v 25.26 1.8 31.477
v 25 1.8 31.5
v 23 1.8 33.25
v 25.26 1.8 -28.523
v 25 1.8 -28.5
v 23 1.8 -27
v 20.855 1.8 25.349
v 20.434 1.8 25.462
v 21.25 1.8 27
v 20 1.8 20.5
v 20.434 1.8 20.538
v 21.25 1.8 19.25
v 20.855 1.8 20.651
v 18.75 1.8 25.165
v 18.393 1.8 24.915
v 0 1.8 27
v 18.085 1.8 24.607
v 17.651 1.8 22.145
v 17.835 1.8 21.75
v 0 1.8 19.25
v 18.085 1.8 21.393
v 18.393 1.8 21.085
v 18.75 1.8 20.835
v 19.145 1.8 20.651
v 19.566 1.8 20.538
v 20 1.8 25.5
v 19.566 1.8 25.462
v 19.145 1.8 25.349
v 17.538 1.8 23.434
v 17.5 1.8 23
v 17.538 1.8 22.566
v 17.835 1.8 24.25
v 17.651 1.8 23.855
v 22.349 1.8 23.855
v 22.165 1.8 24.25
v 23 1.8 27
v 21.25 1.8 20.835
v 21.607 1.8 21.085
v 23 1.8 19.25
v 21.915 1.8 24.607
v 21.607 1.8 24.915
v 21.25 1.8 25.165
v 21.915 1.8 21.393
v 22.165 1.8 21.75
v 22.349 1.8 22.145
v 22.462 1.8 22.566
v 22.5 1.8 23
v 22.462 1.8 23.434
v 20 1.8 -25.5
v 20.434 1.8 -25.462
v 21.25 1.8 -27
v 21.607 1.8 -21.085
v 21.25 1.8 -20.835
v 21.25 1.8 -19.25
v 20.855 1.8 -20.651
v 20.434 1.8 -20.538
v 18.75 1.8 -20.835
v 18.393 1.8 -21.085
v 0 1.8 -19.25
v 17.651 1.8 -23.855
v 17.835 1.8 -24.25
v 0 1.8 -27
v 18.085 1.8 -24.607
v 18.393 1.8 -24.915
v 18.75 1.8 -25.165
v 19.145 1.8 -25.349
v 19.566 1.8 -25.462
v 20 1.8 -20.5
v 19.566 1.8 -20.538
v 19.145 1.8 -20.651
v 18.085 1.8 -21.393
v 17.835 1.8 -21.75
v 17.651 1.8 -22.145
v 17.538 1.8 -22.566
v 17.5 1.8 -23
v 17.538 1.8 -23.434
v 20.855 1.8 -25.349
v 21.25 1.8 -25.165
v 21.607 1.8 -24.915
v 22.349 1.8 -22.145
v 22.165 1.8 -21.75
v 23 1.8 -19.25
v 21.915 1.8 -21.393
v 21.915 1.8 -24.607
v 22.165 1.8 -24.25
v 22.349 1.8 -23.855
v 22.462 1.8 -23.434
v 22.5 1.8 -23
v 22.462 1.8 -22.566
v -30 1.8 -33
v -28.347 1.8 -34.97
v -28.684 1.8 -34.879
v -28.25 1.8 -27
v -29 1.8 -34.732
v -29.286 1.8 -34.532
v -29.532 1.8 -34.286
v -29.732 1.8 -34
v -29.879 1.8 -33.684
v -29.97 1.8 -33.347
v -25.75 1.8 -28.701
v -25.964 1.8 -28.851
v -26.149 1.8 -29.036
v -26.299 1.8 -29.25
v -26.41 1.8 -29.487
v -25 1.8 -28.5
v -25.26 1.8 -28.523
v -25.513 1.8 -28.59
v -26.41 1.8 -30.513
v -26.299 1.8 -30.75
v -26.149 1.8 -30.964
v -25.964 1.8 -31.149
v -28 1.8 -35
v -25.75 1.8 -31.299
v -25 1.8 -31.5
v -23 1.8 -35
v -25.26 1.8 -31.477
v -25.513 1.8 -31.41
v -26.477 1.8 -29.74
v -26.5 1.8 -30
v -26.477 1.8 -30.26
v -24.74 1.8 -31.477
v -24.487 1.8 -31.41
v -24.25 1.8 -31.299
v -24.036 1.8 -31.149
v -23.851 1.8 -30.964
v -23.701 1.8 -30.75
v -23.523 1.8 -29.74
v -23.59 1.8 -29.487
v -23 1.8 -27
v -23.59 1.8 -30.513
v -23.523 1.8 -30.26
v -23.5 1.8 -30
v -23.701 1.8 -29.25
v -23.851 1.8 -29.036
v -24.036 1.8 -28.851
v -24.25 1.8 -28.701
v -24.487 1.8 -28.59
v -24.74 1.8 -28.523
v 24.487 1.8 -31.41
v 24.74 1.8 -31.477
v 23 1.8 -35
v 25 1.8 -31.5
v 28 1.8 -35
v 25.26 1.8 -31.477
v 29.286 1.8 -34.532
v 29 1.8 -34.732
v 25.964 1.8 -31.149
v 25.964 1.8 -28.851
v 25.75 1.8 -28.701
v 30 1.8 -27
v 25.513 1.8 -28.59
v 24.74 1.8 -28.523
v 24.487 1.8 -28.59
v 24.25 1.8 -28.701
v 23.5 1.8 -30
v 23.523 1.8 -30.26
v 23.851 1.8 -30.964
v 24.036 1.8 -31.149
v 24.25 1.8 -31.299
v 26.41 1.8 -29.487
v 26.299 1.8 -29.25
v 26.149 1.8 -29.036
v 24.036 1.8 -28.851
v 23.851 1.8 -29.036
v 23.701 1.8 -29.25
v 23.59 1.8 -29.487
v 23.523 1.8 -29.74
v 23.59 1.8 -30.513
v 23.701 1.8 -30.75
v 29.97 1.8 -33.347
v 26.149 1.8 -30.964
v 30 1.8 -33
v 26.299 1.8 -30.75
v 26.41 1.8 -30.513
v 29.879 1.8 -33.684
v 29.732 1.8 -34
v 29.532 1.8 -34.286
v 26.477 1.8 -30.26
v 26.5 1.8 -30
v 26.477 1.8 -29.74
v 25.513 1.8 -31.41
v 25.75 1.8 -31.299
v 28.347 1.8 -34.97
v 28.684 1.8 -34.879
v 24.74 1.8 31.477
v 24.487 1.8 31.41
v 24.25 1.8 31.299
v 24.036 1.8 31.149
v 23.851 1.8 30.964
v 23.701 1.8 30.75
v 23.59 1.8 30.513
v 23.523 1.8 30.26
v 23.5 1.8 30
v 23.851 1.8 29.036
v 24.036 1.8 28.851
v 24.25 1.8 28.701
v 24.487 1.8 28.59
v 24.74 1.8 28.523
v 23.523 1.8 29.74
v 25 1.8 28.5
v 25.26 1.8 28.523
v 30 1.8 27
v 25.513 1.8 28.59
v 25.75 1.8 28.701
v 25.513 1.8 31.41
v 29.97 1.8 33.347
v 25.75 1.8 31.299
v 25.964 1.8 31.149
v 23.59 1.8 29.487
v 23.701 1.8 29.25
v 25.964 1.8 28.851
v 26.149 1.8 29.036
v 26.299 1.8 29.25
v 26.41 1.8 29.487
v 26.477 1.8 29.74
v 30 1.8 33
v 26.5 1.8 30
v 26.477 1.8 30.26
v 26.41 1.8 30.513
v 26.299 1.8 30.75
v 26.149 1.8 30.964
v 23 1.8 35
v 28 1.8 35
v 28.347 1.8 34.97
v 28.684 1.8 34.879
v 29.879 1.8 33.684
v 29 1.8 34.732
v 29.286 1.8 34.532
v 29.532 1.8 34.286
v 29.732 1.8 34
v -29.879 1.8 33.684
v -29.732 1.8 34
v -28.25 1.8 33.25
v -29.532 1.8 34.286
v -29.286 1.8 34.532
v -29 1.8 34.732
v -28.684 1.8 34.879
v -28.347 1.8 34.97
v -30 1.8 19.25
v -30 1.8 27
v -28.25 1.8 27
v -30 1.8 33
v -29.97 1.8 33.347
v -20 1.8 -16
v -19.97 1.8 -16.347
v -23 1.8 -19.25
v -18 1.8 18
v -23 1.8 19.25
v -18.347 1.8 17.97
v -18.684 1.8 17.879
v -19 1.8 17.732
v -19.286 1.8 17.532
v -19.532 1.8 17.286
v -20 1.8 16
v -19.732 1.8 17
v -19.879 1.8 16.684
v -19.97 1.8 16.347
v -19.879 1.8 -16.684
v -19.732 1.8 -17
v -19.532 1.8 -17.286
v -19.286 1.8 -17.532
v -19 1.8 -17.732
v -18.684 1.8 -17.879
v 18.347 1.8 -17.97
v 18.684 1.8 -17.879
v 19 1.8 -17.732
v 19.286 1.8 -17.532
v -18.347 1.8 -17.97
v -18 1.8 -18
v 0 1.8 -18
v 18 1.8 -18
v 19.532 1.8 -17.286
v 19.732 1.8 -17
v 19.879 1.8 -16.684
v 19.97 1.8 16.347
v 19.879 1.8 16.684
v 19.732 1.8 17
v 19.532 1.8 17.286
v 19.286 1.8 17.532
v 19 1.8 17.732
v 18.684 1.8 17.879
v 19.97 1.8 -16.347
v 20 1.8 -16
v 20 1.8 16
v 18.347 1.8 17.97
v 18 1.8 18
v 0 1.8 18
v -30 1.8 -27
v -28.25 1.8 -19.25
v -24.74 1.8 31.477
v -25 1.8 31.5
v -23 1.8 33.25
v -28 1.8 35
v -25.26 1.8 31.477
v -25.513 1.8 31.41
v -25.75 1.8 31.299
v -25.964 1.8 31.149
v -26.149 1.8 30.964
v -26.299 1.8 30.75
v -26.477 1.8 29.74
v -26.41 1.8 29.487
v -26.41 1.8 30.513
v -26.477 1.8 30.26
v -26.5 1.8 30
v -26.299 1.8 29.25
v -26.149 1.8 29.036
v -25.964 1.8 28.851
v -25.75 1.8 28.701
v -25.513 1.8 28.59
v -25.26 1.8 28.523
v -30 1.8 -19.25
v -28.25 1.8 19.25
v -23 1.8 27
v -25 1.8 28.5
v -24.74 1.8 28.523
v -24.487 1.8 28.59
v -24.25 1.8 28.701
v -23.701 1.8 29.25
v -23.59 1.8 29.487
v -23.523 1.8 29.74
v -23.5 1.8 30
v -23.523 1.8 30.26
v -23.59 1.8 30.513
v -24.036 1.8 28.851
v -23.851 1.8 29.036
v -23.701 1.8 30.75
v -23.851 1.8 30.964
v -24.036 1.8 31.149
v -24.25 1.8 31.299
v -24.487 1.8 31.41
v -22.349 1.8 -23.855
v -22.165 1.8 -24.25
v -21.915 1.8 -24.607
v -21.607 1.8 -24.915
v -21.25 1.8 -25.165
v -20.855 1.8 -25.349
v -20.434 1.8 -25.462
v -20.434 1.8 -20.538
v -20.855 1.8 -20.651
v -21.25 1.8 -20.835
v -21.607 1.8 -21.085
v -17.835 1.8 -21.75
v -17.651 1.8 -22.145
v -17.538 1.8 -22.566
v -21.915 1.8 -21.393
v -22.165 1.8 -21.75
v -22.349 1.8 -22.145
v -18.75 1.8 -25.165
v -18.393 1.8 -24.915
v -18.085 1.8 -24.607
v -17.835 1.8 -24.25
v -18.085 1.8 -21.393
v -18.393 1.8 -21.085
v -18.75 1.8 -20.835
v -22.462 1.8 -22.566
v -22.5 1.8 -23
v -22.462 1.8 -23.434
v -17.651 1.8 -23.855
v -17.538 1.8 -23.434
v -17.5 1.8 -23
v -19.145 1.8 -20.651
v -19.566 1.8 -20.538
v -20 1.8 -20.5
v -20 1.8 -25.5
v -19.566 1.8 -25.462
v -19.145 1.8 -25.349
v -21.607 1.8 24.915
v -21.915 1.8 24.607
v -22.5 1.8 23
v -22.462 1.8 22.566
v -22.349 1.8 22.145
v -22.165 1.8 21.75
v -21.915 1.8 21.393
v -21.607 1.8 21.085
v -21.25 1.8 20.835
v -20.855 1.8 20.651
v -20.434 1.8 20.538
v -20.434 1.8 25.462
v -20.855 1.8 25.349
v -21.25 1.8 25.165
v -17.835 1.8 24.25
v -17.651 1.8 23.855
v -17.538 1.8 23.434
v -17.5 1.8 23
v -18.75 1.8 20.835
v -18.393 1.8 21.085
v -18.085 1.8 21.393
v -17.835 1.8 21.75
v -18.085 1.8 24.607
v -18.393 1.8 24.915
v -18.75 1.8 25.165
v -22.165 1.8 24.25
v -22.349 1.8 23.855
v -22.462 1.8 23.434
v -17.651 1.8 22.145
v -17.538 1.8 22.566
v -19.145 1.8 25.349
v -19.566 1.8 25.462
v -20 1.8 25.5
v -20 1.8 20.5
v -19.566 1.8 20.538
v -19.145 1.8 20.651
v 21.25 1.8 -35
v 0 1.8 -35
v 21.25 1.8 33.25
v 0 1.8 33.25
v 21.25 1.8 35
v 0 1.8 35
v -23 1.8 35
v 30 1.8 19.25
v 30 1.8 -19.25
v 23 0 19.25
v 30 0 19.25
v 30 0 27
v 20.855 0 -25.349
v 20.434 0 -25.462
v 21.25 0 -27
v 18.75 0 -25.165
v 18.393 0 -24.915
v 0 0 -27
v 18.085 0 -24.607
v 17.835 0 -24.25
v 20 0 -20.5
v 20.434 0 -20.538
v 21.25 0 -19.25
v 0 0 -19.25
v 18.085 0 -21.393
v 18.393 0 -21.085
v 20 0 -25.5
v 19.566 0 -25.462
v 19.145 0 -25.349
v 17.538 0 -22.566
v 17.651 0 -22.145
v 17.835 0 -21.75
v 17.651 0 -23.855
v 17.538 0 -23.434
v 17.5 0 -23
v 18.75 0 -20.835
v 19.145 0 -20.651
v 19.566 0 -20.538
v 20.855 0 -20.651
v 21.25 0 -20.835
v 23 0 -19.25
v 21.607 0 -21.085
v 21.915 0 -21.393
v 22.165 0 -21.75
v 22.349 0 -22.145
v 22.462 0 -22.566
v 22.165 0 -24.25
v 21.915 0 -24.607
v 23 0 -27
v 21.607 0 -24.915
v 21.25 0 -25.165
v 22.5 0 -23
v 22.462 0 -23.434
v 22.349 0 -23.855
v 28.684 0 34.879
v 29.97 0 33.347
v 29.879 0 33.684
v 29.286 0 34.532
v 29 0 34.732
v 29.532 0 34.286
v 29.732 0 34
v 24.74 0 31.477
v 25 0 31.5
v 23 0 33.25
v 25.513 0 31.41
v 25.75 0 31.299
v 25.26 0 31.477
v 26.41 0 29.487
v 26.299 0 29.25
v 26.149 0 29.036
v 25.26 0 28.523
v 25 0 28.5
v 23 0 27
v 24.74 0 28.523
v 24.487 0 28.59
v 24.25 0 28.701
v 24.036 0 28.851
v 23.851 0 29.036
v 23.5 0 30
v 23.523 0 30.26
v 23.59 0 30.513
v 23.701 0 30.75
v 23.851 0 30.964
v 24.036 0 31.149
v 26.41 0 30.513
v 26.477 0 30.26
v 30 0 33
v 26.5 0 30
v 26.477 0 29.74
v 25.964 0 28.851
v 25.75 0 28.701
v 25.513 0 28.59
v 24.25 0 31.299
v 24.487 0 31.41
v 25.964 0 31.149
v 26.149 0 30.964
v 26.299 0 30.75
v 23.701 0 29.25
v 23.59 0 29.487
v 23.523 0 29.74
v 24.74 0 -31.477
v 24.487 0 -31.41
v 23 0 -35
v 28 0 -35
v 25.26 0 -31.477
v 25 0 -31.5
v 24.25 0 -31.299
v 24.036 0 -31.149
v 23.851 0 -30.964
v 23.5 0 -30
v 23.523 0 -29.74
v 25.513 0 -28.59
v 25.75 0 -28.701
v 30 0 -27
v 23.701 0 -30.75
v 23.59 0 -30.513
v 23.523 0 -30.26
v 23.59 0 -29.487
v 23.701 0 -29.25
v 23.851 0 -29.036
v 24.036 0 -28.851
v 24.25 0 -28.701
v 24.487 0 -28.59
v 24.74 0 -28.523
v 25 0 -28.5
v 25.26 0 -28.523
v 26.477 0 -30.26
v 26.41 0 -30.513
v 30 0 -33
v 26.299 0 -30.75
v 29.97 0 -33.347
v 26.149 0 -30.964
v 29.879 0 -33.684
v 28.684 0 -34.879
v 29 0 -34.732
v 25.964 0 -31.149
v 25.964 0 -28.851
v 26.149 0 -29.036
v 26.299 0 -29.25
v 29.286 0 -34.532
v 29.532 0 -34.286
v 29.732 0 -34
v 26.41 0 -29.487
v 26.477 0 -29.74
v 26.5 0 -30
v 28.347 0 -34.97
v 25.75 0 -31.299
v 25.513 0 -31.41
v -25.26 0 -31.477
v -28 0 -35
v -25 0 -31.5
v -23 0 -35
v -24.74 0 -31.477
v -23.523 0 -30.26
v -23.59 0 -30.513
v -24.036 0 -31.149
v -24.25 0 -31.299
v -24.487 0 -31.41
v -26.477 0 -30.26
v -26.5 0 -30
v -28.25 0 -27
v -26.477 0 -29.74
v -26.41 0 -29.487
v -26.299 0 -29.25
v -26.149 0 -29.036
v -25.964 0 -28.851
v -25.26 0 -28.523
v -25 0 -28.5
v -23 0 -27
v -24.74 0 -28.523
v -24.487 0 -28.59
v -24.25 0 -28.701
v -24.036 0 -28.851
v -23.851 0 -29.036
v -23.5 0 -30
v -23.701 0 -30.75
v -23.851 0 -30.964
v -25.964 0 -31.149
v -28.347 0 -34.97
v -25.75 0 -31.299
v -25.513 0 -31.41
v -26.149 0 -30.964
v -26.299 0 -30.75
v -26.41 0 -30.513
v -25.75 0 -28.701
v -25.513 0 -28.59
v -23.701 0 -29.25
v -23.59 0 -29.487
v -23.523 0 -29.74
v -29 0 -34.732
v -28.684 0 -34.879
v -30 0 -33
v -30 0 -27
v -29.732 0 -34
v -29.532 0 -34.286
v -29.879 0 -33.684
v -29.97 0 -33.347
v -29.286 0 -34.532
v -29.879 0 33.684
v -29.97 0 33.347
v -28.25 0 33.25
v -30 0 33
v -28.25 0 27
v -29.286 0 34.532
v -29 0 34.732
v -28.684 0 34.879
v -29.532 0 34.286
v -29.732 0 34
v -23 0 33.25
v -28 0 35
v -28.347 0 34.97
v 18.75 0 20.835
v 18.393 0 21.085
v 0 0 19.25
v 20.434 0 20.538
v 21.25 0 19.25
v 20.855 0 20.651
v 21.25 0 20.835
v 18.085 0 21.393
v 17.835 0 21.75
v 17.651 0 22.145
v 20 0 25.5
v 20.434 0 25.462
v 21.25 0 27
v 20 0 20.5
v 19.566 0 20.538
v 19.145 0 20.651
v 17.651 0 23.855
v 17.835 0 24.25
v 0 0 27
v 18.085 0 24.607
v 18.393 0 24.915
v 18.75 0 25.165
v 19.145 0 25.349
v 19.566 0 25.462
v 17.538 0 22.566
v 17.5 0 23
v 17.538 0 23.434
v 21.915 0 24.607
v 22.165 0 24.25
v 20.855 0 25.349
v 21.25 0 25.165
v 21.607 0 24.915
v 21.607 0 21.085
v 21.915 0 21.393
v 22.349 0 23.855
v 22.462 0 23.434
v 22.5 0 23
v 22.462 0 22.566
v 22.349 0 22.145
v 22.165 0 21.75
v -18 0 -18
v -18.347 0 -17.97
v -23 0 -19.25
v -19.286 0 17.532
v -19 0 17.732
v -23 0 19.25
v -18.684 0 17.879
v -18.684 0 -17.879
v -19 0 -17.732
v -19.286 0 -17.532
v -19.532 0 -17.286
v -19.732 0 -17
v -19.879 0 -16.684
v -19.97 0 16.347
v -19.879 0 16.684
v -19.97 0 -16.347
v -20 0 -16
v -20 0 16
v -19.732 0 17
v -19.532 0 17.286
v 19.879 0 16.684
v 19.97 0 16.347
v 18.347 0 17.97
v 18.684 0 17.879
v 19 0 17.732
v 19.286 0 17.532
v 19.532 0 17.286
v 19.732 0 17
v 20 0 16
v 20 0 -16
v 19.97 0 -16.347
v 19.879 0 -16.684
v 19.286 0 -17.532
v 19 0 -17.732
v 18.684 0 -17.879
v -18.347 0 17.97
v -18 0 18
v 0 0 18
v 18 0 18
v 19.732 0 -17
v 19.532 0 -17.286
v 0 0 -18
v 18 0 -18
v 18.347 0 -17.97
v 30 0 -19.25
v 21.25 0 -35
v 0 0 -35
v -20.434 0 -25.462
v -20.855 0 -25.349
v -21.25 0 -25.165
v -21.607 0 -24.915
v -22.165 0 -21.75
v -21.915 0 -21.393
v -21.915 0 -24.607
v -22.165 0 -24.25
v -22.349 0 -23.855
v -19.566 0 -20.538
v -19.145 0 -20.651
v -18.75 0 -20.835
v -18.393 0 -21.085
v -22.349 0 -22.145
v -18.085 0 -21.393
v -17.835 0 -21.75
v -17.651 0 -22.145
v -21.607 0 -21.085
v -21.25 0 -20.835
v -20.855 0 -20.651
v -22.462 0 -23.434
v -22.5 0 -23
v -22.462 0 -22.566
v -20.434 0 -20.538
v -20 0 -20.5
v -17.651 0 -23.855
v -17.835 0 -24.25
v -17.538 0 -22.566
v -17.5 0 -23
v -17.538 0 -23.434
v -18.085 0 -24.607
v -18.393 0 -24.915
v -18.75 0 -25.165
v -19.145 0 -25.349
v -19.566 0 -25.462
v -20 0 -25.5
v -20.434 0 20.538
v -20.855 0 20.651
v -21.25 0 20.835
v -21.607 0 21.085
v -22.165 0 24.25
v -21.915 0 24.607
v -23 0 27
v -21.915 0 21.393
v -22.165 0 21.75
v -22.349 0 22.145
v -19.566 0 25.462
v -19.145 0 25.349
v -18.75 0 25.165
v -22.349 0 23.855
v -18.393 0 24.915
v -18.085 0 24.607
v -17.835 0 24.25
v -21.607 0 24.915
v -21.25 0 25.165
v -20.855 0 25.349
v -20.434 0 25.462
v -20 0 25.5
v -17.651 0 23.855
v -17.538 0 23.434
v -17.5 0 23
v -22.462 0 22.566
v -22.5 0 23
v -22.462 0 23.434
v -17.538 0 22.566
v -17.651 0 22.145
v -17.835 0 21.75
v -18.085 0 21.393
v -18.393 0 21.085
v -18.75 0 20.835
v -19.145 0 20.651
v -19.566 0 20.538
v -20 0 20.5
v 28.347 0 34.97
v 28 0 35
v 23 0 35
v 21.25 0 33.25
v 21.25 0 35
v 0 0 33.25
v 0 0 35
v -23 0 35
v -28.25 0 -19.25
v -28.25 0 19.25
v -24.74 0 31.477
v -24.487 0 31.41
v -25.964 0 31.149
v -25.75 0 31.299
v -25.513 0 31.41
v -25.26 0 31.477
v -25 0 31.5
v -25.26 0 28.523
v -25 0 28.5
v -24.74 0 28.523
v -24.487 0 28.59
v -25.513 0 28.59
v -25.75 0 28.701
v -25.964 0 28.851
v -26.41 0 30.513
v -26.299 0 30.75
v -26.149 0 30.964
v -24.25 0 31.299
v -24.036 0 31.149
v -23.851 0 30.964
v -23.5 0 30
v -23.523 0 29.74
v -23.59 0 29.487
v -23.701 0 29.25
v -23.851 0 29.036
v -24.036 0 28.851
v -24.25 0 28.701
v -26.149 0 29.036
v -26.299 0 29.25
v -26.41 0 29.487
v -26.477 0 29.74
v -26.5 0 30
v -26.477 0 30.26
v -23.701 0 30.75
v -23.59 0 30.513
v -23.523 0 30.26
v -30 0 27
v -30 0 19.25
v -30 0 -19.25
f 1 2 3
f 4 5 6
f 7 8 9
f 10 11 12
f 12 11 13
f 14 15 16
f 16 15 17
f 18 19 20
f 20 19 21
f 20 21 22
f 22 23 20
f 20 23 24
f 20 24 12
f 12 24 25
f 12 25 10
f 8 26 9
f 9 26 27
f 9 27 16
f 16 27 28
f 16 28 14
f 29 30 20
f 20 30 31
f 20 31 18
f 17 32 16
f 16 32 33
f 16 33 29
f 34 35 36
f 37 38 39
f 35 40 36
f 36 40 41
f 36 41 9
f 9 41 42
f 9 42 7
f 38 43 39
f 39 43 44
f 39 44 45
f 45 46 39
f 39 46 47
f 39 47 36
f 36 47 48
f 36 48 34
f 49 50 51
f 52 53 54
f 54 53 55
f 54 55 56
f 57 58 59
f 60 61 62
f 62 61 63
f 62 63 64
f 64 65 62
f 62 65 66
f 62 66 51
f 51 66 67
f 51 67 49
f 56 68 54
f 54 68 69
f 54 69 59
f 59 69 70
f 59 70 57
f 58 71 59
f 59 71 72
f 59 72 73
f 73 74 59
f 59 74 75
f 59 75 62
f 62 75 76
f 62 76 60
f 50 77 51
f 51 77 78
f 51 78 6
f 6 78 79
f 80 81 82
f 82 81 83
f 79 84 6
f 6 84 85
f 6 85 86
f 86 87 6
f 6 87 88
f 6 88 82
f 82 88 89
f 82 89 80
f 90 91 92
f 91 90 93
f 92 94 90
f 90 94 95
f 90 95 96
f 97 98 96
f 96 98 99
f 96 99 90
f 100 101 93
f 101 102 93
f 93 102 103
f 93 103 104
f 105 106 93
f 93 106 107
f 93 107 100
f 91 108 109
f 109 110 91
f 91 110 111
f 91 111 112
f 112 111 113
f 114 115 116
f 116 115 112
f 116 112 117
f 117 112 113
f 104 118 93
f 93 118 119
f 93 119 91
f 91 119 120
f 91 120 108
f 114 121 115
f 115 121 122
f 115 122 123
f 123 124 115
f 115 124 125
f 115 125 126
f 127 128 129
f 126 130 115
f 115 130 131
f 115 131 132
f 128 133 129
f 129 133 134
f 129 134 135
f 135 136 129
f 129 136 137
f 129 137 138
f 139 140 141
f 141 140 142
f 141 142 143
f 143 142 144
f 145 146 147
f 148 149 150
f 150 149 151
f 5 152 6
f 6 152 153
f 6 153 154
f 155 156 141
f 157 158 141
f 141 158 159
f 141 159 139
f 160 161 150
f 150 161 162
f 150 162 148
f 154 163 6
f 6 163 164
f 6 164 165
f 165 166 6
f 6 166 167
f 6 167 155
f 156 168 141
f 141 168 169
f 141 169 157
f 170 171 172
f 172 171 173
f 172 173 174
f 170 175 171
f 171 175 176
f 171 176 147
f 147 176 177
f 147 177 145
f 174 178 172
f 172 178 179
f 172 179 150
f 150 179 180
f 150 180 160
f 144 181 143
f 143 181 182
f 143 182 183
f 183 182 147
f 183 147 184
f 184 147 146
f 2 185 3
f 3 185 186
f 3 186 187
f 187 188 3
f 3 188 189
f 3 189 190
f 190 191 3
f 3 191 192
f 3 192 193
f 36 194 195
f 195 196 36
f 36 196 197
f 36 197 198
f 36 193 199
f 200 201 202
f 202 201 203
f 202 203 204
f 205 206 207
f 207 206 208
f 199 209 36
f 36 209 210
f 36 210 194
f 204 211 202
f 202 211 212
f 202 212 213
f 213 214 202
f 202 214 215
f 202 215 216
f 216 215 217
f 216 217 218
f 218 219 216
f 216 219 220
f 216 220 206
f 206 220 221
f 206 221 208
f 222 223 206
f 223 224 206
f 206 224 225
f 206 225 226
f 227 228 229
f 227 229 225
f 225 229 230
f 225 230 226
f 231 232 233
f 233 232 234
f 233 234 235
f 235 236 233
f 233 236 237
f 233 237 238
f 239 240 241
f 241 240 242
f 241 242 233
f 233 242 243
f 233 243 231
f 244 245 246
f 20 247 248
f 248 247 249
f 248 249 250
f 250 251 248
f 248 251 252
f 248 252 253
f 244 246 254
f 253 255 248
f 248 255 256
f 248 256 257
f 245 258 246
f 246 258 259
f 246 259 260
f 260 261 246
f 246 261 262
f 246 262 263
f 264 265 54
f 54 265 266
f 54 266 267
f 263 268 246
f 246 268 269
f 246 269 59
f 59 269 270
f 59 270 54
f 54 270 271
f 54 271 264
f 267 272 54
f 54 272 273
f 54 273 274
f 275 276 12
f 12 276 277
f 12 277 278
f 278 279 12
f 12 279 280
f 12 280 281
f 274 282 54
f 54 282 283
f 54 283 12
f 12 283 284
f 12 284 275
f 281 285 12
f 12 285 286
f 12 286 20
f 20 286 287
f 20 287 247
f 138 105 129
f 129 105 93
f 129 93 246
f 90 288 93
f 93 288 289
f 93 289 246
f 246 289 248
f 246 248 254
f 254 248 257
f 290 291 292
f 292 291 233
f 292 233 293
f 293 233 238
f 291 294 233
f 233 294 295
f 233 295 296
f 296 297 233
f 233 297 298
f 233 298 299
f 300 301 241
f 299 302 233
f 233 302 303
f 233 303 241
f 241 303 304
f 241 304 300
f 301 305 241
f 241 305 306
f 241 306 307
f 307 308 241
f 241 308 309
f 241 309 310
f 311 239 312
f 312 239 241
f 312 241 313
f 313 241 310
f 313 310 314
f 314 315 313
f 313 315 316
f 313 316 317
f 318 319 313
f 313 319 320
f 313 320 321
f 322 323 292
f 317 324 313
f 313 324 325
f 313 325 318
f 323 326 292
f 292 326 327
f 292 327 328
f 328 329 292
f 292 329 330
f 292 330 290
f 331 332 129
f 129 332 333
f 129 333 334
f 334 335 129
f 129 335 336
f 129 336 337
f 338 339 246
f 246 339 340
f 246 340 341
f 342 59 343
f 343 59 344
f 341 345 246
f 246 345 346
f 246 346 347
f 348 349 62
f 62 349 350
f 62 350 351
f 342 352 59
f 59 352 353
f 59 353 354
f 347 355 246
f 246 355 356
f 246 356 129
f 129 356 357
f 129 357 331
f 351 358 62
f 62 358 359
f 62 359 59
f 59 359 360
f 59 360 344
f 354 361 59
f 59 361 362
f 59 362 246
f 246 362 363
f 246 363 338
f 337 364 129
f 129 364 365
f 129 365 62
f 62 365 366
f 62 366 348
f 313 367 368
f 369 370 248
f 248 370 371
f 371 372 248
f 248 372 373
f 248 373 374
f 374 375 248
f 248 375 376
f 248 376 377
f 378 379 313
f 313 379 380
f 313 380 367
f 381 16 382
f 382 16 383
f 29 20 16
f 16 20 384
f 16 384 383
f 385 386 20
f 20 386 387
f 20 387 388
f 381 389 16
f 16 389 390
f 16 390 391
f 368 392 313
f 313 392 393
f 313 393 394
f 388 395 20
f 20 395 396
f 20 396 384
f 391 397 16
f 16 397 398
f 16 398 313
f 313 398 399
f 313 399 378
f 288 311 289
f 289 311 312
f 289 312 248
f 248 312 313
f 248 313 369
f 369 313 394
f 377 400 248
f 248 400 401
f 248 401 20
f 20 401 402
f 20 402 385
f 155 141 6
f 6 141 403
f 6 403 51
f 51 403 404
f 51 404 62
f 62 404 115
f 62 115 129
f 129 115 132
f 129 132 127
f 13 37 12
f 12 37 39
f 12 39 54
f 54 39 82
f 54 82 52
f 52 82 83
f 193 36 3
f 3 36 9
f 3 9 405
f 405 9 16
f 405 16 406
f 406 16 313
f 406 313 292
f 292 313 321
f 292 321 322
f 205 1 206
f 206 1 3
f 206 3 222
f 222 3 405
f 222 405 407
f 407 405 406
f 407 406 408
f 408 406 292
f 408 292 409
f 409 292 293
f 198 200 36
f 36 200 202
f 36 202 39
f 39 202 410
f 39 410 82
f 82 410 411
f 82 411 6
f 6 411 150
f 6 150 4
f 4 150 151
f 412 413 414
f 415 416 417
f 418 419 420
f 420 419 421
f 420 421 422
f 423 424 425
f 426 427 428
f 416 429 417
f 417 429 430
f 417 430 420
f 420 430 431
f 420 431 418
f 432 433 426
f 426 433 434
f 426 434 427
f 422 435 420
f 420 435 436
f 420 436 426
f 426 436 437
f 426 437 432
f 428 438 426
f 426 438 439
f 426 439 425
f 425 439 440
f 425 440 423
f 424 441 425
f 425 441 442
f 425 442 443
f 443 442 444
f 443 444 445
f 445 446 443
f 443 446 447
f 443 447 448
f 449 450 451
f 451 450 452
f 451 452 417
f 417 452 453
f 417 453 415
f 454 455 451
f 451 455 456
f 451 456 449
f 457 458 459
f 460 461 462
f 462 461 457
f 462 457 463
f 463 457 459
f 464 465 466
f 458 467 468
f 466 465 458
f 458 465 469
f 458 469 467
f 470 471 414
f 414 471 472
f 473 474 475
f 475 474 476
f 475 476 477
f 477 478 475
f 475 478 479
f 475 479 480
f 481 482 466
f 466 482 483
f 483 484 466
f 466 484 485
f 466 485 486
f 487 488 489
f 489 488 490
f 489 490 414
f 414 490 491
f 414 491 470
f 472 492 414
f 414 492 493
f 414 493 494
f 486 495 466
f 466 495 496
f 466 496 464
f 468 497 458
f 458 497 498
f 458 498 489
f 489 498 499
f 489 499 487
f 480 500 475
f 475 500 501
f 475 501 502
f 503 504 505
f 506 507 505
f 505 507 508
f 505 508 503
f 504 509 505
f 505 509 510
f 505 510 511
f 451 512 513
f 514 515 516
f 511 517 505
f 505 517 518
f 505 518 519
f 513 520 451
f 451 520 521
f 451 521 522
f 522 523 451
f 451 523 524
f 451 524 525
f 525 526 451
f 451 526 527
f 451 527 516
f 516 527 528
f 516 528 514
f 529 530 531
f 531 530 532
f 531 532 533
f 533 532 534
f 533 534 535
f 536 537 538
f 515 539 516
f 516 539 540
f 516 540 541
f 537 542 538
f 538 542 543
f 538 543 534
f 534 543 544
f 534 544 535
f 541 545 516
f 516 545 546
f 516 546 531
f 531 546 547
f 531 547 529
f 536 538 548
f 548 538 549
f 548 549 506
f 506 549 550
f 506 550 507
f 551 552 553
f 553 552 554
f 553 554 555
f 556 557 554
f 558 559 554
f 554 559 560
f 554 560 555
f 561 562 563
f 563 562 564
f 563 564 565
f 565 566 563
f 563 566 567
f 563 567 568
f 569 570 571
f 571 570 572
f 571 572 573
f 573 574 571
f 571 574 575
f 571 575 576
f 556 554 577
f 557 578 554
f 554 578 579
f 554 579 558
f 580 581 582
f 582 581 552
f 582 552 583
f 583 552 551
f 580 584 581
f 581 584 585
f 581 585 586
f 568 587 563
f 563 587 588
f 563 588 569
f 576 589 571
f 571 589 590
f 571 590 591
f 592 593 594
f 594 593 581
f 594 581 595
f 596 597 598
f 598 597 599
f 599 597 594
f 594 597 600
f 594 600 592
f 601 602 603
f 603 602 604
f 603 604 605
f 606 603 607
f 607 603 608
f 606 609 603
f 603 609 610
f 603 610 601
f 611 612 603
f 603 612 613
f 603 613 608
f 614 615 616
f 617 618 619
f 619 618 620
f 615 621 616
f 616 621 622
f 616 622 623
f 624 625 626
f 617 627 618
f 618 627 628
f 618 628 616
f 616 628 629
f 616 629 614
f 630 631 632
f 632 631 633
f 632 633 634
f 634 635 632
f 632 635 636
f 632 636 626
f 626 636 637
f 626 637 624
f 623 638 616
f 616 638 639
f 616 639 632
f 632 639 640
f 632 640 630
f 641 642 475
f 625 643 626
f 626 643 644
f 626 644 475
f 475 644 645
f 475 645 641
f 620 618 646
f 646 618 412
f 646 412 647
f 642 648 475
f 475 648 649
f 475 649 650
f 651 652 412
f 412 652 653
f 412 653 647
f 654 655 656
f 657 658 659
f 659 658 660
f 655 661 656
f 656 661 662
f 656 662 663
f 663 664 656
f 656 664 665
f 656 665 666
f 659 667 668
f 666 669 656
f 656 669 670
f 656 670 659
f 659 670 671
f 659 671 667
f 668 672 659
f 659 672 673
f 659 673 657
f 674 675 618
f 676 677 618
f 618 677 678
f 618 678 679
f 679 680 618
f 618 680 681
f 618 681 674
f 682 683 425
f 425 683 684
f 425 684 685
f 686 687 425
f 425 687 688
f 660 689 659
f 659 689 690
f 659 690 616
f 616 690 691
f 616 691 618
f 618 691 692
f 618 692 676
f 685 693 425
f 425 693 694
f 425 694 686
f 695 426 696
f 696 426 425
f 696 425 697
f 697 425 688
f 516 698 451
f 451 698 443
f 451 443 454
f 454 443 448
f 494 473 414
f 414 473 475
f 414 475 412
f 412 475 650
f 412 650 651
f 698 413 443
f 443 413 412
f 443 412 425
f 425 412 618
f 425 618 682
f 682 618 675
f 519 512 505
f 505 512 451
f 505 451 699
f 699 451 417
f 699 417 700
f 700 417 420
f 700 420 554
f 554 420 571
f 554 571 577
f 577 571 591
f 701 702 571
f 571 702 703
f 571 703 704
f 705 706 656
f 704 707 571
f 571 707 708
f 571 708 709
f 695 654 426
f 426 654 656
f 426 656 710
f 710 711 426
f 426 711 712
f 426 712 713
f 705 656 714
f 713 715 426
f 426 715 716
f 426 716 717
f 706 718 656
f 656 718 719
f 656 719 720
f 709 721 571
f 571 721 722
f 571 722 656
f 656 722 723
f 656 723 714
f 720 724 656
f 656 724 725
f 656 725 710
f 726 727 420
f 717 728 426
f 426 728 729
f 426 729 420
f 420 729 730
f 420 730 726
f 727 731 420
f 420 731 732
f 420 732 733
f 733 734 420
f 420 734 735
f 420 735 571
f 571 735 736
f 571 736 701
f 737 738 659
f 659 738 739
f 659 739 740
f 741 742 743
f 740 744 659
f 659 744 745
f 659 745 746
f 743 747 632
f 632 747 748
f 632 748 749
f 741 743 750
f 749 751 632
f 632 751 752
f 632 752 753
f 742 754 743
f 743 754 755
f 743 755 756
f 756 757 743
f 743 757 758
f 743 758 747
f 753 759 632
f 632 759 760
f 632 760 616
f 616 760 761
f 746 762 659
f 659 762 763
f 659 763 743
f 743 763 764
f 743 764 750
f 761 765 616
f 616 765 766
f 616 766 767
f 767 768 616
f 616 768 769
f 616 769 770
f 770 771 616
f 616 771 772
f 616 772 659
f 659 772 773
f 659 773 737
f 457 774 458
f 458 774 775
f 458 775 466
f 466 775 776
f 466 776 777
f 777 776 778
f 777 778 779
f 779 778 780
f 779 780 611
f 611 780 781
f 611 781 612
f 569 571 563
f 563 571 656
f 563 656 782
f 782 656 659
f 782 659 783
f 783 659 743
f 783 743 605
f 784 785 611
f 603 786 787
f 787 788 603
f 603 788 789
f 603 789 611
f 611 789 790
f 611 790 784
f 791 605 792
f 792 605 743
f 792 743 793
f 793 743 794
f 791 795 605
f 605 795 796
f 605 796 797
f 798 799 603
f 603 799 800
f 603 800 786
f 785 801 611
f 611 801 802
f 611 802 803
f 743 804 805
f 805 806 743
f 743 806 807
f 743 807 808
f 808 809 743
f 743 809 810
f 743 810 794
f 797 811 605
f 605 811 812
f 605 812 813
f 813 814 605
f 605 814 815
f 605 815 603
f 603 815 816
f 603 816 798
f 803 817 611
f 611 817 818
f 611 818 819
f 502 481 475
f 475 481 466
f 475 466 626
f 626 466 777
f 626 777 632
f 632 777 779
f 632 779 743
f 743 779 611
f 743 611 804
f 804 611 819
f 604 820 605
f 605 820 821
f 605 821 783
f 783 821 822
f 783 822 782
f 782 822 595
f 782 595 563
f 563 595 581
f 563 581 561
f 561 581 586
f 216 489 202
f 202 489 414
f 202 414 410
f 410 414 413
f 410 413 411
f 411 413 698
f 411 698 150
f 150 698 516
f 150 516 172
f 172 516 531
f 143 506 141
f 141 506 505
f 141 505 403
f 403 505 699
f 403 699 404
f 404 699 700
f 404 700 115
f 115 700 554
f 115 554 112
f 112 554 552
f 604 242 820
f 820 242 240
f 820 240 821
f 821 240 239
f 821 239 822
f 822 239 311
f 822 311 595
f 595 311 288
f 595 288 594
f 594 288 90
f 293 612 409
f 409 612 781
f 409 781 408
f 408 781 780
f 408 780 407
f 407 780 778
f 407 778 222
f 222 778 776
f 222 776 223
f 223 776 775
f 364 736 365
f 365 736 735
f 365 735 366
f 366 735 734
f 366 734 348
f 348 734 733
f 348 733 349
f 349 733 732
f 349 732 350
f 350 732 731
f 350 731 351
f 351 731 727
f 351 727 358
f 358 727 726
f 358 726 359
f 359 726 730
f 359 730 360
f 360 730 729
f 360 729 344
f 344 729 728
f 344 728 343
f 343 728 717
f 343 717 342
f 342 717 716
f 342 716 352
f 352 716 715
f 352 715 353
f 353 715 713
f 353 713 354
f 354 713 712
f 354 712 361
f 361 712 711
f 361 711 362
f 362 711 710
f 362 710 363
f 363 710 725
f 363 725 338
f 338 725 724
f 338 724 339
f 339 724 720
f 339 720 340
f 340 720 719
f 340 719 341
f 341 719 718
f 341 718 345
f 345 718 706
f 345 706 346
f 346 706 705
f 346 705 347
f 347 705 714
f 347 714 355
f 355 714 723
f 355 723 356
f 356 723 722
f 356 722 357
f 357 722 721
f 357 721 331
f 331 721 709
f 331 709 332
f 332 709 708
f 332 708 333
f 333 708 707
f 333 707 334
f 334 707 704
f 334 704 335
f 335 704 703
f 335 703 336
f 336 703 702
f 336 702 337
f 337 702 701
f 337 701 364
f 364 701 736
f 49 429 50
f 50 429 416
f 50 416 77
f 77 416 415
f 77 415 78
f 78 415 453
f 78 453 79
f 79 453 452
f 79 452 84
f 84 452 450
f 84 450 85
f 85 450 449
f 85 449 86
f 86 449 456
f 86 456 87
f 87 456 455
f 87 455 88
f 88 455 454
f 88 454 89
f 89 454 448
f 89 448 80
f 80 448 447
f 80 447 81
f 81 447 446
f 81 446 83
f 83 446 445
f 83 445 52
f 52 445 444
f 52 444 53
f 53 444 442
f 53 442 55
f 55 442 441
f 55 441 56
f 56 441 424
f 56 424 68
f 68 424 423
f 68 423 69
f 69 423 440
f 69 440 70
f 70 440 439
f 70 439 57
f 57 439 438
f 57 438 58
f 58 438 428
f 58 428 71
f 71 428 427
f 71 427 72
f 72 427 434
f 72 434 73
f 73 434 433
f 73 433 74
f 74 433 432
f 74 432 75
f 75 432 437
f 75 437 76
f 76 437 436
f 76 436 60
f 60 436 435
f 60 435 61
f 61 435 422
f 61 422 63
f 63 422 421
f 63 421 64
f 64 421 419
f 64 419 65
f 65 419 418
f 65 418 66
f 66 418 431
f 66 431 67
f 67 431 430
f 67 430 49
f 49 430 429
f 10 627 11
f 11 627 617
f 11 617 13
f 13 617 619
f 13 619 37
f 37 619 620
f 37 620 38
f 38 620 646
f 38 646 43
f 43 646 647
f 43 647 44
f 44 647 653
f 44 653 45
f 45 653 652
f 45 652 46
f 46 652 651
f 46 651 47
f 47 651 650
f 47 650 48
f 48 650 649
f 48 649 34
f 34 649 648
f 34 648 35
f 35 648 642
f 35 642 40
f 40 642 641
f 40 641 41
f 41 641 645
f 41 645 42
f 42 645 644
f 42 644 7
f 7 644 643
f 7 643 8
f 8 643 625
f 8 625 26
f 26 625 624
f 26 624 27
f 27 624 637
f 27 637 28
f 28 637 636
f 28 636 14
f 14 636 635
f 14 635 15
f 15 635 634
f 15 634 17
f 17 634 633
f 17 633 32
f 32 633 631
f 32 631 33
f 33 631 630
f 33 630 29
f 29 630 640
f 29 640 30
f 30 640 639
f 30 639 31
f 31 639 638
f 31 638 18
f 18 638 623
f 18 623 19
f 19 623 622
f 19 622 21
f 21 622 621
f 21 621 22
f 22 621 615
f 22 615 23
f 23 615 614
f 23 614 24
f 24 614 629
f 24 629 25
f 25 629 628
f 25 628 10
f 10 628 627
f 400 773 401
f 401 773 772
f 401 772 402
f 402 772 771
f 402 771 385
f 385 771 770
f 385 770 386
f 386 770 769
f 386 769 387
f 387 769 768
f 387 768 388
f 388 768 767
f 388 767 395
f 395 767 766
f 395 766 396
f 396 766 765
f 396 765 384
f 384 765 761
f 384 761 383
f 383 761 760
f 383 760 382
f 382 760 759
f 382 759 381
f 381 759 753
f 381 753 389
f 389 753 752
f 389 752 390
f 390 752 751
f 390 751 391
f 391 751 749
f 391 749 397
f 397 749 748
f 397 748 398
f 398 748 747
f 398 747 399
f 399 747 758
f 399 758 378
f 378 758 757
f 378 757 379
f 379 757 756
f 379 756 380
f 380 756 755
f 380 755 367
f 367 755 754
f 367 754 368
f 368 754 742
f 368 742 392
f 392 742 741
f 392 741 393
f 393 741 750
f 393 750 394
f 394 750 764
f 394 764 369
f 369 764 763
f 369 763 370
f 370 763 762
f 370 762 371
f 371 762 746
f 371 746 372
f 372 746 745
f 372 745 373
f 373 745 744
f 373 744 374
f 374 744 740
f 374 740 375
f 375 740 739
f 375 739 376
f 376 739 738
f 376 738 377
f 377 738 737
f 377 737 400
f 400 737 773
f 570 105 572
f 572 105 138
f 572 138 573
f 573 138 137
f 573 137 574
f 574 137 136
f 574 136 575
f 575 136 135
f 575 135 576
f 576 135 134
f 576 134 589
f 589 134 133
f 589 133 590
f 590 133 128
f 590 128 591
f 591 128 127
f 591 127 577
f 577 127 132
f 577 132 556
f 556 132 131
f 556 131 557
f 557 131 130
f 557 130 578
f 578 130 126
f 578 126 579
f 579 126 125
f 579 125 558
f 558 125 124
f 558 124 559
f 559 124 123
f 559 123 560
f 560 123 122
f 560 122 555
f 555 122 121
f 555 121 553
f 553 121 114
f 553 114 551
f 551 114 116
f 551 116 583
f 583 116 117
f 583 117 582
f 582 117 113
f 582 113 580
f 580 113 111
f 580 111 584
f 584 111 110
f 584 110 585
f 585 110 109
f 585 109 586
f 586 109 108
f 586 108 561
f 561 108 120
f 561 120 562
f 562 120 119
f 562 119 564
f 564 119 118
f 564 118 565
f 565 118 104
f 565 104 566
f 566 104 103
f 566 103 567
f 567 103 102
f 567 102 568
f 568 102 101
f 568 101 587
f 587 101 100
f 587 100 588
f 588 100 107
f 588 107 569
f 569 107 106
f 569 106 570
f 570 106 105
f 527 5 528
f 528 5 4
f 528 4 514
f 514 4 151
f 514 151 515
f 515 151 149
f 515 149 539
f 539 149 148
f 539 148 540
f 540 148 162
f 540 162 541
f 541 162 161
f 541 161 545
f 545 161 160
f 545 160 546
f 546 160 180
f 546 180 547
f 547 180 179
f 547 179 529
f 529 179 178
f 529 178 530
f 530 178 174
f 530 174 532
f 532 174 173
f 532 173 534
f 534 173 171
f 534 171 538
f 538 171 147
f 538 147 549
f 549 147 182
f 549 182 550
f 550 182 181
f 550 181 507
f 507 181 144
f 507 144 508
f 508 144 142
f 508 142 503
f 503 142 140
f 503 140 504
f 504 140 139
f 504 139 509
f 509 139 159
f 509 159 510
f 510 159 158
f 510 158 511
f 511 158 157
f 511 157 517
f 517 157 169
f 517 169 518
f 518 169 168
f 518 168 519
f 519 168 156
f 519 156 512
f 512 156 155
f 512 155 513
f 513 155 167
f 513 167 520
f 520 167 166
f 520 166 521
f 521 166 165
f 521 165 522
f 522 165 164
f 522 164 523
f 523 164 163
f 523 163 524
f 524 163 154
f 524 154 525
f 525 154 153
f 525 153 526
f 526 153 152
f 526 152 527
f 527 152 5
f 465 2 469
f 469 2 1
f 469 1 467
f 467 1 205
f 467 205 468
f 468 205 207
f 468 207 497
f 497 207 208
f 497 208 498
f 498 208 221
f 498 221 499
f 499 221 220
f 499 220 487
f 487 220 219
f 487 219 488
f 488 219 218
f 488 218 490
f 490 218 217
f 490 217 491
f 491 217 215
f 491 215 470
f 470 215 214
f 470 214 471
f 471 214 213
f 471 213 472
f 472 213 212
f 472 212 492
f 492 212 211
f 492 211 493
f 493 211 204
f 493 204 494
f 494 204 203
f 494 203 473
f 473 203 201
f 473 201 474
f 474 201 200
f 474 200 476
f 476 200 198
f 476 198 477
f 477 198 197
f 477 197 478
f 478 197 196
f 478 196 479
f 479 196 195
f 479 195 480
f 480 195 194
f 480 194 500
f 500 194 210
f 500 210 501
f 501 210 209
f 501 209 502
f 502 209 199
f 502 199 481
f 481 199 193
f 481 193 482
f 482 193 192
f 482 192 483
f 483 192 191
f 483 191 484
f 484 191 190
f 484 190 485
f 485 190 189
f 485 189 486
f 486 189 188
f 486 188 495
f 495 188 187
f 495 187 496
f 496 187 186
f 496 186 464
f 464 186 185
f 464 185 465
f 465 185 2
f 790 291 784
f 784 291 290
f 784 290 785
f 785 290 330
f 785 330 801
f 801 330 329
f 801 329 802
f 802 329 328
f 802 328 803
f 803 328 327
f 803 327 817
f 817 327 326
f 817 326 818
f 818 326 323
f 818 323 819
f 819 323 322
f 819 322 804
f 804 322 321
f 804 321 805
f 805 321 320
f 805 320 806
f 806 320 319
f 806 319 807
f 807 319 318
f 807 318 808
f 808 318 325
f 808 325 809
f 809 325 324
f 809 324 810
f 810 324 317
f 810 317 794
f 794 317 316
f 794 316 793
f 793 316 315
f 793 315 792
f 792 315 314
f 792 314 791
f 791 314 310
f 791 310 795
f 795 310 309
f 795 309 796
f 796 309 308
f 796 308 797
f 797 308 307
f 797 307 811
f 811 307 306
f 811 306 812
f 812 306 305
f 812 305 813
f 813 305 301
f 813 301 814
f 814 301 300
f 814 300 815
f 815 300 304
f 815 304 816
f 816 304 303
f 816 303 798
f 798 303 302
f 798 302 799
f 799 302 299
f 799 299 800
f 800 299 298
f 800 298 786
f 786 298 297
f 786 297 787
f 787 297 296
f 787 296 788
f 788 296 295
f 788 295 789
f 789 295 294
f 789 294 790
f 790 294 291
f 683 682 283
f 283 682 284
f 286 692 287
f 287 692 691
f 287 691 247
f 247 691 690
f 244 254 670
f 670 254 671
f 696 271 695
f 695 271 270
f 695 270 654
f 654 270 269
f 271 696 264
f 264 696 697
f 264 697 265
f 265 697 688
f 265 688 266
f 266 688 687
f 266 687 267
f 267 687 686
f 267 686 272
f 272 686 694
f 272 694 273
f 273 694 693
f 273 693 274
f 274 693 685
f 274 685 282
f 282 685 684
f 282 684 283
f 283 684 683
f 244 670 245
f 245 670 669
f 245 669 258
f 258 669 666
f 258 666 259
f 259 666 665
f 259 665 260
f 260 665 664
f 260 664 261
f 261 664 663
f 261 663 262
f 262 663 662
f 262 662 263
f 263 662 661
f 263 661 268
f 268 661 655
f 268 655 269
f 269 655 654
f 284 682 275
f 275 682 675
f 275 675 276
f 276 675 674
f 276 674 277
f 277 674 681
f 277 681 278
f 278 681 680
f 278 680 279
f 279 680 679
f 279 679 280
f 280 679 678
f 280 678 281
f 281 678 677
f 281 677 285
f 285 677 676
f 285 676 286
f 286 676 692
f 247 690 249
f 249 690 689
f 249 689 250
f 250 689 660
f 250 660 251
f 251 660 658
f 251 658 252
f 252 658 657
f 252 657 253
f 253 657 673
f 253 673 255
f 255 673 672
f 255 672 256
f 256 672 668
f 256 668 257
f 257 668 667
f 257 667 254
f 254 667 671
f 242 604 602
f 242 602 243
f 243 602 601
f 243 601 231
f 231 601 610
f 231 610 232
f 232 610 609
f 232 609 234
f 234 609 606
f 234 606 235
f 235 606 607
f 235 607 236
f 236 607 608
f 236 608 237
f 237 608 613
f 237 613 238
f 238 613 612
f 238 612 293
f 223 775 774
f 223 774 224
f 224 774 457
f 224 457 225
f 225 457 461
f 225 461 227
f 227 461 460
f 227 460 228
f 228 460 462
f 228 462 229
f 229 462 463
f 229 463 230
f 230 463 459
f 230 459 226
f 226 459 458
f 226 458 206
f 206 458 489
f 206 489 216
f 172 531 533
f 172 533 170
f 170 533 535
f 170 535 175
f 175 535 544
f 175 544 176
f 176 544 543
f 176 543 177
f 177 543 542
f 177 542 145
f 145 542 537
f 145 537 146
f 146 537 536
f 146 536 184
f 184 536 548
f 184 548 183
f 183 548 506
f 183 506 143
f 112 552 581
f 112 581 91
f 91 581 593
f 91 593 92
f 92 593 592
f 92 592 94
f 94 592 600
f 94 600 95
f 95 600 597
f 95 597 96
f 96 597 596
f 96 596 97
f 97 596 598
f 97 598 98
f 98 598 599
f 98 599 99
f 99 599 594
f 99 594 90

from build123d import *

# Parameters (mm, degrees)
SKETCH_1_W          = 60
SKETCH_1_H          = 70
SKETCH_1_R          = 2.5
EXTRUDE_1_DEPTH     = 1.8
SKETCH_2_R          = 1.5
SKETCH_2_W          = 40
SKETCH_2_H          = 36
CUT_EXTRUDE_1_DEPTH = 47.132851635
FILLET_1_R          = 2


with BuildPart() as part:
    # 草图1 → 凸台-拉伸1 (new body)
    with BuildSketch(Plane(origin=(0, 0, 0), x_dir=(1, 0, 0), z_dir=(0, 1, 0))):
        Rectangle(SKETCH_1_W, SKETCH_1_H)
        with Locations(Location((-20, 23, 0), (0, 0, 270))):
            Circle(SKETCH_1_R, mode=Mode.SUBTRACT)
        with Locations(Location((20, 23, 0), (0, 0, 90))):
            Circle(SKETCH_1_R, mode=Mode.SUBTRACT)
        with Locations(Location((20, -23, 0), (0, 0, 270))):
            Circle(SKETCH_1_R, mode=Mode.SUBTRACT)
        with Locations(Location((-20, -23, 0), (0, 0, 90))):
            Circle(SKETCH_1_R, mode=Mode.SUBTRACT)
    extrude(amount=EXTRUDE_1_DEPTH)

    # 草图2 → 切除-拉伸1 (cut, through all)
    with BuildSketch(Plane(origin=(0, 1.8, 0), x_dir=(1, 0, 0), z_dir=(0, 1, 0))):
        with Locations(Location((-25, 30, 0), (0, 0, 270))):
            Circle(SKETCH_2_R)
        with Locations(Location((25, 30, 0), (0, 0, 90))):
            Circle(SKETCH_2_R)
        with Locations(Location((25, -30, 0), (0, 0, 270))):
            Circle(SKETCH_2_R)
        with Locations(Location((-25, -30, 0), (0, 0, 90))):
            Circle(SKETCH_2_R)
        Rectangle(SKETCH_2_W, SKETCH_2_H)
    extrude(amount=-CUT_EXTRUDE_1_DEPTH, mode=Mode.SUBTRACT)

    # 圆角1
    fillet_1_edges = [part.edges().sort_by_distance(p)[0] for p in [
        (20, 0.9, -18),
        (20, 0.9, 18),
        (-20, 0.9, 18),
        (-20, 0.9, -18),
        (30, 0.9, 35),
        (-30, 0.9, 35),
        (-30, 0.9, -35),
        (30, 0.9, -35),
    ]]
    fillet(fillet_1_edges, radius=FILLET_1_R)


solid = part.part
